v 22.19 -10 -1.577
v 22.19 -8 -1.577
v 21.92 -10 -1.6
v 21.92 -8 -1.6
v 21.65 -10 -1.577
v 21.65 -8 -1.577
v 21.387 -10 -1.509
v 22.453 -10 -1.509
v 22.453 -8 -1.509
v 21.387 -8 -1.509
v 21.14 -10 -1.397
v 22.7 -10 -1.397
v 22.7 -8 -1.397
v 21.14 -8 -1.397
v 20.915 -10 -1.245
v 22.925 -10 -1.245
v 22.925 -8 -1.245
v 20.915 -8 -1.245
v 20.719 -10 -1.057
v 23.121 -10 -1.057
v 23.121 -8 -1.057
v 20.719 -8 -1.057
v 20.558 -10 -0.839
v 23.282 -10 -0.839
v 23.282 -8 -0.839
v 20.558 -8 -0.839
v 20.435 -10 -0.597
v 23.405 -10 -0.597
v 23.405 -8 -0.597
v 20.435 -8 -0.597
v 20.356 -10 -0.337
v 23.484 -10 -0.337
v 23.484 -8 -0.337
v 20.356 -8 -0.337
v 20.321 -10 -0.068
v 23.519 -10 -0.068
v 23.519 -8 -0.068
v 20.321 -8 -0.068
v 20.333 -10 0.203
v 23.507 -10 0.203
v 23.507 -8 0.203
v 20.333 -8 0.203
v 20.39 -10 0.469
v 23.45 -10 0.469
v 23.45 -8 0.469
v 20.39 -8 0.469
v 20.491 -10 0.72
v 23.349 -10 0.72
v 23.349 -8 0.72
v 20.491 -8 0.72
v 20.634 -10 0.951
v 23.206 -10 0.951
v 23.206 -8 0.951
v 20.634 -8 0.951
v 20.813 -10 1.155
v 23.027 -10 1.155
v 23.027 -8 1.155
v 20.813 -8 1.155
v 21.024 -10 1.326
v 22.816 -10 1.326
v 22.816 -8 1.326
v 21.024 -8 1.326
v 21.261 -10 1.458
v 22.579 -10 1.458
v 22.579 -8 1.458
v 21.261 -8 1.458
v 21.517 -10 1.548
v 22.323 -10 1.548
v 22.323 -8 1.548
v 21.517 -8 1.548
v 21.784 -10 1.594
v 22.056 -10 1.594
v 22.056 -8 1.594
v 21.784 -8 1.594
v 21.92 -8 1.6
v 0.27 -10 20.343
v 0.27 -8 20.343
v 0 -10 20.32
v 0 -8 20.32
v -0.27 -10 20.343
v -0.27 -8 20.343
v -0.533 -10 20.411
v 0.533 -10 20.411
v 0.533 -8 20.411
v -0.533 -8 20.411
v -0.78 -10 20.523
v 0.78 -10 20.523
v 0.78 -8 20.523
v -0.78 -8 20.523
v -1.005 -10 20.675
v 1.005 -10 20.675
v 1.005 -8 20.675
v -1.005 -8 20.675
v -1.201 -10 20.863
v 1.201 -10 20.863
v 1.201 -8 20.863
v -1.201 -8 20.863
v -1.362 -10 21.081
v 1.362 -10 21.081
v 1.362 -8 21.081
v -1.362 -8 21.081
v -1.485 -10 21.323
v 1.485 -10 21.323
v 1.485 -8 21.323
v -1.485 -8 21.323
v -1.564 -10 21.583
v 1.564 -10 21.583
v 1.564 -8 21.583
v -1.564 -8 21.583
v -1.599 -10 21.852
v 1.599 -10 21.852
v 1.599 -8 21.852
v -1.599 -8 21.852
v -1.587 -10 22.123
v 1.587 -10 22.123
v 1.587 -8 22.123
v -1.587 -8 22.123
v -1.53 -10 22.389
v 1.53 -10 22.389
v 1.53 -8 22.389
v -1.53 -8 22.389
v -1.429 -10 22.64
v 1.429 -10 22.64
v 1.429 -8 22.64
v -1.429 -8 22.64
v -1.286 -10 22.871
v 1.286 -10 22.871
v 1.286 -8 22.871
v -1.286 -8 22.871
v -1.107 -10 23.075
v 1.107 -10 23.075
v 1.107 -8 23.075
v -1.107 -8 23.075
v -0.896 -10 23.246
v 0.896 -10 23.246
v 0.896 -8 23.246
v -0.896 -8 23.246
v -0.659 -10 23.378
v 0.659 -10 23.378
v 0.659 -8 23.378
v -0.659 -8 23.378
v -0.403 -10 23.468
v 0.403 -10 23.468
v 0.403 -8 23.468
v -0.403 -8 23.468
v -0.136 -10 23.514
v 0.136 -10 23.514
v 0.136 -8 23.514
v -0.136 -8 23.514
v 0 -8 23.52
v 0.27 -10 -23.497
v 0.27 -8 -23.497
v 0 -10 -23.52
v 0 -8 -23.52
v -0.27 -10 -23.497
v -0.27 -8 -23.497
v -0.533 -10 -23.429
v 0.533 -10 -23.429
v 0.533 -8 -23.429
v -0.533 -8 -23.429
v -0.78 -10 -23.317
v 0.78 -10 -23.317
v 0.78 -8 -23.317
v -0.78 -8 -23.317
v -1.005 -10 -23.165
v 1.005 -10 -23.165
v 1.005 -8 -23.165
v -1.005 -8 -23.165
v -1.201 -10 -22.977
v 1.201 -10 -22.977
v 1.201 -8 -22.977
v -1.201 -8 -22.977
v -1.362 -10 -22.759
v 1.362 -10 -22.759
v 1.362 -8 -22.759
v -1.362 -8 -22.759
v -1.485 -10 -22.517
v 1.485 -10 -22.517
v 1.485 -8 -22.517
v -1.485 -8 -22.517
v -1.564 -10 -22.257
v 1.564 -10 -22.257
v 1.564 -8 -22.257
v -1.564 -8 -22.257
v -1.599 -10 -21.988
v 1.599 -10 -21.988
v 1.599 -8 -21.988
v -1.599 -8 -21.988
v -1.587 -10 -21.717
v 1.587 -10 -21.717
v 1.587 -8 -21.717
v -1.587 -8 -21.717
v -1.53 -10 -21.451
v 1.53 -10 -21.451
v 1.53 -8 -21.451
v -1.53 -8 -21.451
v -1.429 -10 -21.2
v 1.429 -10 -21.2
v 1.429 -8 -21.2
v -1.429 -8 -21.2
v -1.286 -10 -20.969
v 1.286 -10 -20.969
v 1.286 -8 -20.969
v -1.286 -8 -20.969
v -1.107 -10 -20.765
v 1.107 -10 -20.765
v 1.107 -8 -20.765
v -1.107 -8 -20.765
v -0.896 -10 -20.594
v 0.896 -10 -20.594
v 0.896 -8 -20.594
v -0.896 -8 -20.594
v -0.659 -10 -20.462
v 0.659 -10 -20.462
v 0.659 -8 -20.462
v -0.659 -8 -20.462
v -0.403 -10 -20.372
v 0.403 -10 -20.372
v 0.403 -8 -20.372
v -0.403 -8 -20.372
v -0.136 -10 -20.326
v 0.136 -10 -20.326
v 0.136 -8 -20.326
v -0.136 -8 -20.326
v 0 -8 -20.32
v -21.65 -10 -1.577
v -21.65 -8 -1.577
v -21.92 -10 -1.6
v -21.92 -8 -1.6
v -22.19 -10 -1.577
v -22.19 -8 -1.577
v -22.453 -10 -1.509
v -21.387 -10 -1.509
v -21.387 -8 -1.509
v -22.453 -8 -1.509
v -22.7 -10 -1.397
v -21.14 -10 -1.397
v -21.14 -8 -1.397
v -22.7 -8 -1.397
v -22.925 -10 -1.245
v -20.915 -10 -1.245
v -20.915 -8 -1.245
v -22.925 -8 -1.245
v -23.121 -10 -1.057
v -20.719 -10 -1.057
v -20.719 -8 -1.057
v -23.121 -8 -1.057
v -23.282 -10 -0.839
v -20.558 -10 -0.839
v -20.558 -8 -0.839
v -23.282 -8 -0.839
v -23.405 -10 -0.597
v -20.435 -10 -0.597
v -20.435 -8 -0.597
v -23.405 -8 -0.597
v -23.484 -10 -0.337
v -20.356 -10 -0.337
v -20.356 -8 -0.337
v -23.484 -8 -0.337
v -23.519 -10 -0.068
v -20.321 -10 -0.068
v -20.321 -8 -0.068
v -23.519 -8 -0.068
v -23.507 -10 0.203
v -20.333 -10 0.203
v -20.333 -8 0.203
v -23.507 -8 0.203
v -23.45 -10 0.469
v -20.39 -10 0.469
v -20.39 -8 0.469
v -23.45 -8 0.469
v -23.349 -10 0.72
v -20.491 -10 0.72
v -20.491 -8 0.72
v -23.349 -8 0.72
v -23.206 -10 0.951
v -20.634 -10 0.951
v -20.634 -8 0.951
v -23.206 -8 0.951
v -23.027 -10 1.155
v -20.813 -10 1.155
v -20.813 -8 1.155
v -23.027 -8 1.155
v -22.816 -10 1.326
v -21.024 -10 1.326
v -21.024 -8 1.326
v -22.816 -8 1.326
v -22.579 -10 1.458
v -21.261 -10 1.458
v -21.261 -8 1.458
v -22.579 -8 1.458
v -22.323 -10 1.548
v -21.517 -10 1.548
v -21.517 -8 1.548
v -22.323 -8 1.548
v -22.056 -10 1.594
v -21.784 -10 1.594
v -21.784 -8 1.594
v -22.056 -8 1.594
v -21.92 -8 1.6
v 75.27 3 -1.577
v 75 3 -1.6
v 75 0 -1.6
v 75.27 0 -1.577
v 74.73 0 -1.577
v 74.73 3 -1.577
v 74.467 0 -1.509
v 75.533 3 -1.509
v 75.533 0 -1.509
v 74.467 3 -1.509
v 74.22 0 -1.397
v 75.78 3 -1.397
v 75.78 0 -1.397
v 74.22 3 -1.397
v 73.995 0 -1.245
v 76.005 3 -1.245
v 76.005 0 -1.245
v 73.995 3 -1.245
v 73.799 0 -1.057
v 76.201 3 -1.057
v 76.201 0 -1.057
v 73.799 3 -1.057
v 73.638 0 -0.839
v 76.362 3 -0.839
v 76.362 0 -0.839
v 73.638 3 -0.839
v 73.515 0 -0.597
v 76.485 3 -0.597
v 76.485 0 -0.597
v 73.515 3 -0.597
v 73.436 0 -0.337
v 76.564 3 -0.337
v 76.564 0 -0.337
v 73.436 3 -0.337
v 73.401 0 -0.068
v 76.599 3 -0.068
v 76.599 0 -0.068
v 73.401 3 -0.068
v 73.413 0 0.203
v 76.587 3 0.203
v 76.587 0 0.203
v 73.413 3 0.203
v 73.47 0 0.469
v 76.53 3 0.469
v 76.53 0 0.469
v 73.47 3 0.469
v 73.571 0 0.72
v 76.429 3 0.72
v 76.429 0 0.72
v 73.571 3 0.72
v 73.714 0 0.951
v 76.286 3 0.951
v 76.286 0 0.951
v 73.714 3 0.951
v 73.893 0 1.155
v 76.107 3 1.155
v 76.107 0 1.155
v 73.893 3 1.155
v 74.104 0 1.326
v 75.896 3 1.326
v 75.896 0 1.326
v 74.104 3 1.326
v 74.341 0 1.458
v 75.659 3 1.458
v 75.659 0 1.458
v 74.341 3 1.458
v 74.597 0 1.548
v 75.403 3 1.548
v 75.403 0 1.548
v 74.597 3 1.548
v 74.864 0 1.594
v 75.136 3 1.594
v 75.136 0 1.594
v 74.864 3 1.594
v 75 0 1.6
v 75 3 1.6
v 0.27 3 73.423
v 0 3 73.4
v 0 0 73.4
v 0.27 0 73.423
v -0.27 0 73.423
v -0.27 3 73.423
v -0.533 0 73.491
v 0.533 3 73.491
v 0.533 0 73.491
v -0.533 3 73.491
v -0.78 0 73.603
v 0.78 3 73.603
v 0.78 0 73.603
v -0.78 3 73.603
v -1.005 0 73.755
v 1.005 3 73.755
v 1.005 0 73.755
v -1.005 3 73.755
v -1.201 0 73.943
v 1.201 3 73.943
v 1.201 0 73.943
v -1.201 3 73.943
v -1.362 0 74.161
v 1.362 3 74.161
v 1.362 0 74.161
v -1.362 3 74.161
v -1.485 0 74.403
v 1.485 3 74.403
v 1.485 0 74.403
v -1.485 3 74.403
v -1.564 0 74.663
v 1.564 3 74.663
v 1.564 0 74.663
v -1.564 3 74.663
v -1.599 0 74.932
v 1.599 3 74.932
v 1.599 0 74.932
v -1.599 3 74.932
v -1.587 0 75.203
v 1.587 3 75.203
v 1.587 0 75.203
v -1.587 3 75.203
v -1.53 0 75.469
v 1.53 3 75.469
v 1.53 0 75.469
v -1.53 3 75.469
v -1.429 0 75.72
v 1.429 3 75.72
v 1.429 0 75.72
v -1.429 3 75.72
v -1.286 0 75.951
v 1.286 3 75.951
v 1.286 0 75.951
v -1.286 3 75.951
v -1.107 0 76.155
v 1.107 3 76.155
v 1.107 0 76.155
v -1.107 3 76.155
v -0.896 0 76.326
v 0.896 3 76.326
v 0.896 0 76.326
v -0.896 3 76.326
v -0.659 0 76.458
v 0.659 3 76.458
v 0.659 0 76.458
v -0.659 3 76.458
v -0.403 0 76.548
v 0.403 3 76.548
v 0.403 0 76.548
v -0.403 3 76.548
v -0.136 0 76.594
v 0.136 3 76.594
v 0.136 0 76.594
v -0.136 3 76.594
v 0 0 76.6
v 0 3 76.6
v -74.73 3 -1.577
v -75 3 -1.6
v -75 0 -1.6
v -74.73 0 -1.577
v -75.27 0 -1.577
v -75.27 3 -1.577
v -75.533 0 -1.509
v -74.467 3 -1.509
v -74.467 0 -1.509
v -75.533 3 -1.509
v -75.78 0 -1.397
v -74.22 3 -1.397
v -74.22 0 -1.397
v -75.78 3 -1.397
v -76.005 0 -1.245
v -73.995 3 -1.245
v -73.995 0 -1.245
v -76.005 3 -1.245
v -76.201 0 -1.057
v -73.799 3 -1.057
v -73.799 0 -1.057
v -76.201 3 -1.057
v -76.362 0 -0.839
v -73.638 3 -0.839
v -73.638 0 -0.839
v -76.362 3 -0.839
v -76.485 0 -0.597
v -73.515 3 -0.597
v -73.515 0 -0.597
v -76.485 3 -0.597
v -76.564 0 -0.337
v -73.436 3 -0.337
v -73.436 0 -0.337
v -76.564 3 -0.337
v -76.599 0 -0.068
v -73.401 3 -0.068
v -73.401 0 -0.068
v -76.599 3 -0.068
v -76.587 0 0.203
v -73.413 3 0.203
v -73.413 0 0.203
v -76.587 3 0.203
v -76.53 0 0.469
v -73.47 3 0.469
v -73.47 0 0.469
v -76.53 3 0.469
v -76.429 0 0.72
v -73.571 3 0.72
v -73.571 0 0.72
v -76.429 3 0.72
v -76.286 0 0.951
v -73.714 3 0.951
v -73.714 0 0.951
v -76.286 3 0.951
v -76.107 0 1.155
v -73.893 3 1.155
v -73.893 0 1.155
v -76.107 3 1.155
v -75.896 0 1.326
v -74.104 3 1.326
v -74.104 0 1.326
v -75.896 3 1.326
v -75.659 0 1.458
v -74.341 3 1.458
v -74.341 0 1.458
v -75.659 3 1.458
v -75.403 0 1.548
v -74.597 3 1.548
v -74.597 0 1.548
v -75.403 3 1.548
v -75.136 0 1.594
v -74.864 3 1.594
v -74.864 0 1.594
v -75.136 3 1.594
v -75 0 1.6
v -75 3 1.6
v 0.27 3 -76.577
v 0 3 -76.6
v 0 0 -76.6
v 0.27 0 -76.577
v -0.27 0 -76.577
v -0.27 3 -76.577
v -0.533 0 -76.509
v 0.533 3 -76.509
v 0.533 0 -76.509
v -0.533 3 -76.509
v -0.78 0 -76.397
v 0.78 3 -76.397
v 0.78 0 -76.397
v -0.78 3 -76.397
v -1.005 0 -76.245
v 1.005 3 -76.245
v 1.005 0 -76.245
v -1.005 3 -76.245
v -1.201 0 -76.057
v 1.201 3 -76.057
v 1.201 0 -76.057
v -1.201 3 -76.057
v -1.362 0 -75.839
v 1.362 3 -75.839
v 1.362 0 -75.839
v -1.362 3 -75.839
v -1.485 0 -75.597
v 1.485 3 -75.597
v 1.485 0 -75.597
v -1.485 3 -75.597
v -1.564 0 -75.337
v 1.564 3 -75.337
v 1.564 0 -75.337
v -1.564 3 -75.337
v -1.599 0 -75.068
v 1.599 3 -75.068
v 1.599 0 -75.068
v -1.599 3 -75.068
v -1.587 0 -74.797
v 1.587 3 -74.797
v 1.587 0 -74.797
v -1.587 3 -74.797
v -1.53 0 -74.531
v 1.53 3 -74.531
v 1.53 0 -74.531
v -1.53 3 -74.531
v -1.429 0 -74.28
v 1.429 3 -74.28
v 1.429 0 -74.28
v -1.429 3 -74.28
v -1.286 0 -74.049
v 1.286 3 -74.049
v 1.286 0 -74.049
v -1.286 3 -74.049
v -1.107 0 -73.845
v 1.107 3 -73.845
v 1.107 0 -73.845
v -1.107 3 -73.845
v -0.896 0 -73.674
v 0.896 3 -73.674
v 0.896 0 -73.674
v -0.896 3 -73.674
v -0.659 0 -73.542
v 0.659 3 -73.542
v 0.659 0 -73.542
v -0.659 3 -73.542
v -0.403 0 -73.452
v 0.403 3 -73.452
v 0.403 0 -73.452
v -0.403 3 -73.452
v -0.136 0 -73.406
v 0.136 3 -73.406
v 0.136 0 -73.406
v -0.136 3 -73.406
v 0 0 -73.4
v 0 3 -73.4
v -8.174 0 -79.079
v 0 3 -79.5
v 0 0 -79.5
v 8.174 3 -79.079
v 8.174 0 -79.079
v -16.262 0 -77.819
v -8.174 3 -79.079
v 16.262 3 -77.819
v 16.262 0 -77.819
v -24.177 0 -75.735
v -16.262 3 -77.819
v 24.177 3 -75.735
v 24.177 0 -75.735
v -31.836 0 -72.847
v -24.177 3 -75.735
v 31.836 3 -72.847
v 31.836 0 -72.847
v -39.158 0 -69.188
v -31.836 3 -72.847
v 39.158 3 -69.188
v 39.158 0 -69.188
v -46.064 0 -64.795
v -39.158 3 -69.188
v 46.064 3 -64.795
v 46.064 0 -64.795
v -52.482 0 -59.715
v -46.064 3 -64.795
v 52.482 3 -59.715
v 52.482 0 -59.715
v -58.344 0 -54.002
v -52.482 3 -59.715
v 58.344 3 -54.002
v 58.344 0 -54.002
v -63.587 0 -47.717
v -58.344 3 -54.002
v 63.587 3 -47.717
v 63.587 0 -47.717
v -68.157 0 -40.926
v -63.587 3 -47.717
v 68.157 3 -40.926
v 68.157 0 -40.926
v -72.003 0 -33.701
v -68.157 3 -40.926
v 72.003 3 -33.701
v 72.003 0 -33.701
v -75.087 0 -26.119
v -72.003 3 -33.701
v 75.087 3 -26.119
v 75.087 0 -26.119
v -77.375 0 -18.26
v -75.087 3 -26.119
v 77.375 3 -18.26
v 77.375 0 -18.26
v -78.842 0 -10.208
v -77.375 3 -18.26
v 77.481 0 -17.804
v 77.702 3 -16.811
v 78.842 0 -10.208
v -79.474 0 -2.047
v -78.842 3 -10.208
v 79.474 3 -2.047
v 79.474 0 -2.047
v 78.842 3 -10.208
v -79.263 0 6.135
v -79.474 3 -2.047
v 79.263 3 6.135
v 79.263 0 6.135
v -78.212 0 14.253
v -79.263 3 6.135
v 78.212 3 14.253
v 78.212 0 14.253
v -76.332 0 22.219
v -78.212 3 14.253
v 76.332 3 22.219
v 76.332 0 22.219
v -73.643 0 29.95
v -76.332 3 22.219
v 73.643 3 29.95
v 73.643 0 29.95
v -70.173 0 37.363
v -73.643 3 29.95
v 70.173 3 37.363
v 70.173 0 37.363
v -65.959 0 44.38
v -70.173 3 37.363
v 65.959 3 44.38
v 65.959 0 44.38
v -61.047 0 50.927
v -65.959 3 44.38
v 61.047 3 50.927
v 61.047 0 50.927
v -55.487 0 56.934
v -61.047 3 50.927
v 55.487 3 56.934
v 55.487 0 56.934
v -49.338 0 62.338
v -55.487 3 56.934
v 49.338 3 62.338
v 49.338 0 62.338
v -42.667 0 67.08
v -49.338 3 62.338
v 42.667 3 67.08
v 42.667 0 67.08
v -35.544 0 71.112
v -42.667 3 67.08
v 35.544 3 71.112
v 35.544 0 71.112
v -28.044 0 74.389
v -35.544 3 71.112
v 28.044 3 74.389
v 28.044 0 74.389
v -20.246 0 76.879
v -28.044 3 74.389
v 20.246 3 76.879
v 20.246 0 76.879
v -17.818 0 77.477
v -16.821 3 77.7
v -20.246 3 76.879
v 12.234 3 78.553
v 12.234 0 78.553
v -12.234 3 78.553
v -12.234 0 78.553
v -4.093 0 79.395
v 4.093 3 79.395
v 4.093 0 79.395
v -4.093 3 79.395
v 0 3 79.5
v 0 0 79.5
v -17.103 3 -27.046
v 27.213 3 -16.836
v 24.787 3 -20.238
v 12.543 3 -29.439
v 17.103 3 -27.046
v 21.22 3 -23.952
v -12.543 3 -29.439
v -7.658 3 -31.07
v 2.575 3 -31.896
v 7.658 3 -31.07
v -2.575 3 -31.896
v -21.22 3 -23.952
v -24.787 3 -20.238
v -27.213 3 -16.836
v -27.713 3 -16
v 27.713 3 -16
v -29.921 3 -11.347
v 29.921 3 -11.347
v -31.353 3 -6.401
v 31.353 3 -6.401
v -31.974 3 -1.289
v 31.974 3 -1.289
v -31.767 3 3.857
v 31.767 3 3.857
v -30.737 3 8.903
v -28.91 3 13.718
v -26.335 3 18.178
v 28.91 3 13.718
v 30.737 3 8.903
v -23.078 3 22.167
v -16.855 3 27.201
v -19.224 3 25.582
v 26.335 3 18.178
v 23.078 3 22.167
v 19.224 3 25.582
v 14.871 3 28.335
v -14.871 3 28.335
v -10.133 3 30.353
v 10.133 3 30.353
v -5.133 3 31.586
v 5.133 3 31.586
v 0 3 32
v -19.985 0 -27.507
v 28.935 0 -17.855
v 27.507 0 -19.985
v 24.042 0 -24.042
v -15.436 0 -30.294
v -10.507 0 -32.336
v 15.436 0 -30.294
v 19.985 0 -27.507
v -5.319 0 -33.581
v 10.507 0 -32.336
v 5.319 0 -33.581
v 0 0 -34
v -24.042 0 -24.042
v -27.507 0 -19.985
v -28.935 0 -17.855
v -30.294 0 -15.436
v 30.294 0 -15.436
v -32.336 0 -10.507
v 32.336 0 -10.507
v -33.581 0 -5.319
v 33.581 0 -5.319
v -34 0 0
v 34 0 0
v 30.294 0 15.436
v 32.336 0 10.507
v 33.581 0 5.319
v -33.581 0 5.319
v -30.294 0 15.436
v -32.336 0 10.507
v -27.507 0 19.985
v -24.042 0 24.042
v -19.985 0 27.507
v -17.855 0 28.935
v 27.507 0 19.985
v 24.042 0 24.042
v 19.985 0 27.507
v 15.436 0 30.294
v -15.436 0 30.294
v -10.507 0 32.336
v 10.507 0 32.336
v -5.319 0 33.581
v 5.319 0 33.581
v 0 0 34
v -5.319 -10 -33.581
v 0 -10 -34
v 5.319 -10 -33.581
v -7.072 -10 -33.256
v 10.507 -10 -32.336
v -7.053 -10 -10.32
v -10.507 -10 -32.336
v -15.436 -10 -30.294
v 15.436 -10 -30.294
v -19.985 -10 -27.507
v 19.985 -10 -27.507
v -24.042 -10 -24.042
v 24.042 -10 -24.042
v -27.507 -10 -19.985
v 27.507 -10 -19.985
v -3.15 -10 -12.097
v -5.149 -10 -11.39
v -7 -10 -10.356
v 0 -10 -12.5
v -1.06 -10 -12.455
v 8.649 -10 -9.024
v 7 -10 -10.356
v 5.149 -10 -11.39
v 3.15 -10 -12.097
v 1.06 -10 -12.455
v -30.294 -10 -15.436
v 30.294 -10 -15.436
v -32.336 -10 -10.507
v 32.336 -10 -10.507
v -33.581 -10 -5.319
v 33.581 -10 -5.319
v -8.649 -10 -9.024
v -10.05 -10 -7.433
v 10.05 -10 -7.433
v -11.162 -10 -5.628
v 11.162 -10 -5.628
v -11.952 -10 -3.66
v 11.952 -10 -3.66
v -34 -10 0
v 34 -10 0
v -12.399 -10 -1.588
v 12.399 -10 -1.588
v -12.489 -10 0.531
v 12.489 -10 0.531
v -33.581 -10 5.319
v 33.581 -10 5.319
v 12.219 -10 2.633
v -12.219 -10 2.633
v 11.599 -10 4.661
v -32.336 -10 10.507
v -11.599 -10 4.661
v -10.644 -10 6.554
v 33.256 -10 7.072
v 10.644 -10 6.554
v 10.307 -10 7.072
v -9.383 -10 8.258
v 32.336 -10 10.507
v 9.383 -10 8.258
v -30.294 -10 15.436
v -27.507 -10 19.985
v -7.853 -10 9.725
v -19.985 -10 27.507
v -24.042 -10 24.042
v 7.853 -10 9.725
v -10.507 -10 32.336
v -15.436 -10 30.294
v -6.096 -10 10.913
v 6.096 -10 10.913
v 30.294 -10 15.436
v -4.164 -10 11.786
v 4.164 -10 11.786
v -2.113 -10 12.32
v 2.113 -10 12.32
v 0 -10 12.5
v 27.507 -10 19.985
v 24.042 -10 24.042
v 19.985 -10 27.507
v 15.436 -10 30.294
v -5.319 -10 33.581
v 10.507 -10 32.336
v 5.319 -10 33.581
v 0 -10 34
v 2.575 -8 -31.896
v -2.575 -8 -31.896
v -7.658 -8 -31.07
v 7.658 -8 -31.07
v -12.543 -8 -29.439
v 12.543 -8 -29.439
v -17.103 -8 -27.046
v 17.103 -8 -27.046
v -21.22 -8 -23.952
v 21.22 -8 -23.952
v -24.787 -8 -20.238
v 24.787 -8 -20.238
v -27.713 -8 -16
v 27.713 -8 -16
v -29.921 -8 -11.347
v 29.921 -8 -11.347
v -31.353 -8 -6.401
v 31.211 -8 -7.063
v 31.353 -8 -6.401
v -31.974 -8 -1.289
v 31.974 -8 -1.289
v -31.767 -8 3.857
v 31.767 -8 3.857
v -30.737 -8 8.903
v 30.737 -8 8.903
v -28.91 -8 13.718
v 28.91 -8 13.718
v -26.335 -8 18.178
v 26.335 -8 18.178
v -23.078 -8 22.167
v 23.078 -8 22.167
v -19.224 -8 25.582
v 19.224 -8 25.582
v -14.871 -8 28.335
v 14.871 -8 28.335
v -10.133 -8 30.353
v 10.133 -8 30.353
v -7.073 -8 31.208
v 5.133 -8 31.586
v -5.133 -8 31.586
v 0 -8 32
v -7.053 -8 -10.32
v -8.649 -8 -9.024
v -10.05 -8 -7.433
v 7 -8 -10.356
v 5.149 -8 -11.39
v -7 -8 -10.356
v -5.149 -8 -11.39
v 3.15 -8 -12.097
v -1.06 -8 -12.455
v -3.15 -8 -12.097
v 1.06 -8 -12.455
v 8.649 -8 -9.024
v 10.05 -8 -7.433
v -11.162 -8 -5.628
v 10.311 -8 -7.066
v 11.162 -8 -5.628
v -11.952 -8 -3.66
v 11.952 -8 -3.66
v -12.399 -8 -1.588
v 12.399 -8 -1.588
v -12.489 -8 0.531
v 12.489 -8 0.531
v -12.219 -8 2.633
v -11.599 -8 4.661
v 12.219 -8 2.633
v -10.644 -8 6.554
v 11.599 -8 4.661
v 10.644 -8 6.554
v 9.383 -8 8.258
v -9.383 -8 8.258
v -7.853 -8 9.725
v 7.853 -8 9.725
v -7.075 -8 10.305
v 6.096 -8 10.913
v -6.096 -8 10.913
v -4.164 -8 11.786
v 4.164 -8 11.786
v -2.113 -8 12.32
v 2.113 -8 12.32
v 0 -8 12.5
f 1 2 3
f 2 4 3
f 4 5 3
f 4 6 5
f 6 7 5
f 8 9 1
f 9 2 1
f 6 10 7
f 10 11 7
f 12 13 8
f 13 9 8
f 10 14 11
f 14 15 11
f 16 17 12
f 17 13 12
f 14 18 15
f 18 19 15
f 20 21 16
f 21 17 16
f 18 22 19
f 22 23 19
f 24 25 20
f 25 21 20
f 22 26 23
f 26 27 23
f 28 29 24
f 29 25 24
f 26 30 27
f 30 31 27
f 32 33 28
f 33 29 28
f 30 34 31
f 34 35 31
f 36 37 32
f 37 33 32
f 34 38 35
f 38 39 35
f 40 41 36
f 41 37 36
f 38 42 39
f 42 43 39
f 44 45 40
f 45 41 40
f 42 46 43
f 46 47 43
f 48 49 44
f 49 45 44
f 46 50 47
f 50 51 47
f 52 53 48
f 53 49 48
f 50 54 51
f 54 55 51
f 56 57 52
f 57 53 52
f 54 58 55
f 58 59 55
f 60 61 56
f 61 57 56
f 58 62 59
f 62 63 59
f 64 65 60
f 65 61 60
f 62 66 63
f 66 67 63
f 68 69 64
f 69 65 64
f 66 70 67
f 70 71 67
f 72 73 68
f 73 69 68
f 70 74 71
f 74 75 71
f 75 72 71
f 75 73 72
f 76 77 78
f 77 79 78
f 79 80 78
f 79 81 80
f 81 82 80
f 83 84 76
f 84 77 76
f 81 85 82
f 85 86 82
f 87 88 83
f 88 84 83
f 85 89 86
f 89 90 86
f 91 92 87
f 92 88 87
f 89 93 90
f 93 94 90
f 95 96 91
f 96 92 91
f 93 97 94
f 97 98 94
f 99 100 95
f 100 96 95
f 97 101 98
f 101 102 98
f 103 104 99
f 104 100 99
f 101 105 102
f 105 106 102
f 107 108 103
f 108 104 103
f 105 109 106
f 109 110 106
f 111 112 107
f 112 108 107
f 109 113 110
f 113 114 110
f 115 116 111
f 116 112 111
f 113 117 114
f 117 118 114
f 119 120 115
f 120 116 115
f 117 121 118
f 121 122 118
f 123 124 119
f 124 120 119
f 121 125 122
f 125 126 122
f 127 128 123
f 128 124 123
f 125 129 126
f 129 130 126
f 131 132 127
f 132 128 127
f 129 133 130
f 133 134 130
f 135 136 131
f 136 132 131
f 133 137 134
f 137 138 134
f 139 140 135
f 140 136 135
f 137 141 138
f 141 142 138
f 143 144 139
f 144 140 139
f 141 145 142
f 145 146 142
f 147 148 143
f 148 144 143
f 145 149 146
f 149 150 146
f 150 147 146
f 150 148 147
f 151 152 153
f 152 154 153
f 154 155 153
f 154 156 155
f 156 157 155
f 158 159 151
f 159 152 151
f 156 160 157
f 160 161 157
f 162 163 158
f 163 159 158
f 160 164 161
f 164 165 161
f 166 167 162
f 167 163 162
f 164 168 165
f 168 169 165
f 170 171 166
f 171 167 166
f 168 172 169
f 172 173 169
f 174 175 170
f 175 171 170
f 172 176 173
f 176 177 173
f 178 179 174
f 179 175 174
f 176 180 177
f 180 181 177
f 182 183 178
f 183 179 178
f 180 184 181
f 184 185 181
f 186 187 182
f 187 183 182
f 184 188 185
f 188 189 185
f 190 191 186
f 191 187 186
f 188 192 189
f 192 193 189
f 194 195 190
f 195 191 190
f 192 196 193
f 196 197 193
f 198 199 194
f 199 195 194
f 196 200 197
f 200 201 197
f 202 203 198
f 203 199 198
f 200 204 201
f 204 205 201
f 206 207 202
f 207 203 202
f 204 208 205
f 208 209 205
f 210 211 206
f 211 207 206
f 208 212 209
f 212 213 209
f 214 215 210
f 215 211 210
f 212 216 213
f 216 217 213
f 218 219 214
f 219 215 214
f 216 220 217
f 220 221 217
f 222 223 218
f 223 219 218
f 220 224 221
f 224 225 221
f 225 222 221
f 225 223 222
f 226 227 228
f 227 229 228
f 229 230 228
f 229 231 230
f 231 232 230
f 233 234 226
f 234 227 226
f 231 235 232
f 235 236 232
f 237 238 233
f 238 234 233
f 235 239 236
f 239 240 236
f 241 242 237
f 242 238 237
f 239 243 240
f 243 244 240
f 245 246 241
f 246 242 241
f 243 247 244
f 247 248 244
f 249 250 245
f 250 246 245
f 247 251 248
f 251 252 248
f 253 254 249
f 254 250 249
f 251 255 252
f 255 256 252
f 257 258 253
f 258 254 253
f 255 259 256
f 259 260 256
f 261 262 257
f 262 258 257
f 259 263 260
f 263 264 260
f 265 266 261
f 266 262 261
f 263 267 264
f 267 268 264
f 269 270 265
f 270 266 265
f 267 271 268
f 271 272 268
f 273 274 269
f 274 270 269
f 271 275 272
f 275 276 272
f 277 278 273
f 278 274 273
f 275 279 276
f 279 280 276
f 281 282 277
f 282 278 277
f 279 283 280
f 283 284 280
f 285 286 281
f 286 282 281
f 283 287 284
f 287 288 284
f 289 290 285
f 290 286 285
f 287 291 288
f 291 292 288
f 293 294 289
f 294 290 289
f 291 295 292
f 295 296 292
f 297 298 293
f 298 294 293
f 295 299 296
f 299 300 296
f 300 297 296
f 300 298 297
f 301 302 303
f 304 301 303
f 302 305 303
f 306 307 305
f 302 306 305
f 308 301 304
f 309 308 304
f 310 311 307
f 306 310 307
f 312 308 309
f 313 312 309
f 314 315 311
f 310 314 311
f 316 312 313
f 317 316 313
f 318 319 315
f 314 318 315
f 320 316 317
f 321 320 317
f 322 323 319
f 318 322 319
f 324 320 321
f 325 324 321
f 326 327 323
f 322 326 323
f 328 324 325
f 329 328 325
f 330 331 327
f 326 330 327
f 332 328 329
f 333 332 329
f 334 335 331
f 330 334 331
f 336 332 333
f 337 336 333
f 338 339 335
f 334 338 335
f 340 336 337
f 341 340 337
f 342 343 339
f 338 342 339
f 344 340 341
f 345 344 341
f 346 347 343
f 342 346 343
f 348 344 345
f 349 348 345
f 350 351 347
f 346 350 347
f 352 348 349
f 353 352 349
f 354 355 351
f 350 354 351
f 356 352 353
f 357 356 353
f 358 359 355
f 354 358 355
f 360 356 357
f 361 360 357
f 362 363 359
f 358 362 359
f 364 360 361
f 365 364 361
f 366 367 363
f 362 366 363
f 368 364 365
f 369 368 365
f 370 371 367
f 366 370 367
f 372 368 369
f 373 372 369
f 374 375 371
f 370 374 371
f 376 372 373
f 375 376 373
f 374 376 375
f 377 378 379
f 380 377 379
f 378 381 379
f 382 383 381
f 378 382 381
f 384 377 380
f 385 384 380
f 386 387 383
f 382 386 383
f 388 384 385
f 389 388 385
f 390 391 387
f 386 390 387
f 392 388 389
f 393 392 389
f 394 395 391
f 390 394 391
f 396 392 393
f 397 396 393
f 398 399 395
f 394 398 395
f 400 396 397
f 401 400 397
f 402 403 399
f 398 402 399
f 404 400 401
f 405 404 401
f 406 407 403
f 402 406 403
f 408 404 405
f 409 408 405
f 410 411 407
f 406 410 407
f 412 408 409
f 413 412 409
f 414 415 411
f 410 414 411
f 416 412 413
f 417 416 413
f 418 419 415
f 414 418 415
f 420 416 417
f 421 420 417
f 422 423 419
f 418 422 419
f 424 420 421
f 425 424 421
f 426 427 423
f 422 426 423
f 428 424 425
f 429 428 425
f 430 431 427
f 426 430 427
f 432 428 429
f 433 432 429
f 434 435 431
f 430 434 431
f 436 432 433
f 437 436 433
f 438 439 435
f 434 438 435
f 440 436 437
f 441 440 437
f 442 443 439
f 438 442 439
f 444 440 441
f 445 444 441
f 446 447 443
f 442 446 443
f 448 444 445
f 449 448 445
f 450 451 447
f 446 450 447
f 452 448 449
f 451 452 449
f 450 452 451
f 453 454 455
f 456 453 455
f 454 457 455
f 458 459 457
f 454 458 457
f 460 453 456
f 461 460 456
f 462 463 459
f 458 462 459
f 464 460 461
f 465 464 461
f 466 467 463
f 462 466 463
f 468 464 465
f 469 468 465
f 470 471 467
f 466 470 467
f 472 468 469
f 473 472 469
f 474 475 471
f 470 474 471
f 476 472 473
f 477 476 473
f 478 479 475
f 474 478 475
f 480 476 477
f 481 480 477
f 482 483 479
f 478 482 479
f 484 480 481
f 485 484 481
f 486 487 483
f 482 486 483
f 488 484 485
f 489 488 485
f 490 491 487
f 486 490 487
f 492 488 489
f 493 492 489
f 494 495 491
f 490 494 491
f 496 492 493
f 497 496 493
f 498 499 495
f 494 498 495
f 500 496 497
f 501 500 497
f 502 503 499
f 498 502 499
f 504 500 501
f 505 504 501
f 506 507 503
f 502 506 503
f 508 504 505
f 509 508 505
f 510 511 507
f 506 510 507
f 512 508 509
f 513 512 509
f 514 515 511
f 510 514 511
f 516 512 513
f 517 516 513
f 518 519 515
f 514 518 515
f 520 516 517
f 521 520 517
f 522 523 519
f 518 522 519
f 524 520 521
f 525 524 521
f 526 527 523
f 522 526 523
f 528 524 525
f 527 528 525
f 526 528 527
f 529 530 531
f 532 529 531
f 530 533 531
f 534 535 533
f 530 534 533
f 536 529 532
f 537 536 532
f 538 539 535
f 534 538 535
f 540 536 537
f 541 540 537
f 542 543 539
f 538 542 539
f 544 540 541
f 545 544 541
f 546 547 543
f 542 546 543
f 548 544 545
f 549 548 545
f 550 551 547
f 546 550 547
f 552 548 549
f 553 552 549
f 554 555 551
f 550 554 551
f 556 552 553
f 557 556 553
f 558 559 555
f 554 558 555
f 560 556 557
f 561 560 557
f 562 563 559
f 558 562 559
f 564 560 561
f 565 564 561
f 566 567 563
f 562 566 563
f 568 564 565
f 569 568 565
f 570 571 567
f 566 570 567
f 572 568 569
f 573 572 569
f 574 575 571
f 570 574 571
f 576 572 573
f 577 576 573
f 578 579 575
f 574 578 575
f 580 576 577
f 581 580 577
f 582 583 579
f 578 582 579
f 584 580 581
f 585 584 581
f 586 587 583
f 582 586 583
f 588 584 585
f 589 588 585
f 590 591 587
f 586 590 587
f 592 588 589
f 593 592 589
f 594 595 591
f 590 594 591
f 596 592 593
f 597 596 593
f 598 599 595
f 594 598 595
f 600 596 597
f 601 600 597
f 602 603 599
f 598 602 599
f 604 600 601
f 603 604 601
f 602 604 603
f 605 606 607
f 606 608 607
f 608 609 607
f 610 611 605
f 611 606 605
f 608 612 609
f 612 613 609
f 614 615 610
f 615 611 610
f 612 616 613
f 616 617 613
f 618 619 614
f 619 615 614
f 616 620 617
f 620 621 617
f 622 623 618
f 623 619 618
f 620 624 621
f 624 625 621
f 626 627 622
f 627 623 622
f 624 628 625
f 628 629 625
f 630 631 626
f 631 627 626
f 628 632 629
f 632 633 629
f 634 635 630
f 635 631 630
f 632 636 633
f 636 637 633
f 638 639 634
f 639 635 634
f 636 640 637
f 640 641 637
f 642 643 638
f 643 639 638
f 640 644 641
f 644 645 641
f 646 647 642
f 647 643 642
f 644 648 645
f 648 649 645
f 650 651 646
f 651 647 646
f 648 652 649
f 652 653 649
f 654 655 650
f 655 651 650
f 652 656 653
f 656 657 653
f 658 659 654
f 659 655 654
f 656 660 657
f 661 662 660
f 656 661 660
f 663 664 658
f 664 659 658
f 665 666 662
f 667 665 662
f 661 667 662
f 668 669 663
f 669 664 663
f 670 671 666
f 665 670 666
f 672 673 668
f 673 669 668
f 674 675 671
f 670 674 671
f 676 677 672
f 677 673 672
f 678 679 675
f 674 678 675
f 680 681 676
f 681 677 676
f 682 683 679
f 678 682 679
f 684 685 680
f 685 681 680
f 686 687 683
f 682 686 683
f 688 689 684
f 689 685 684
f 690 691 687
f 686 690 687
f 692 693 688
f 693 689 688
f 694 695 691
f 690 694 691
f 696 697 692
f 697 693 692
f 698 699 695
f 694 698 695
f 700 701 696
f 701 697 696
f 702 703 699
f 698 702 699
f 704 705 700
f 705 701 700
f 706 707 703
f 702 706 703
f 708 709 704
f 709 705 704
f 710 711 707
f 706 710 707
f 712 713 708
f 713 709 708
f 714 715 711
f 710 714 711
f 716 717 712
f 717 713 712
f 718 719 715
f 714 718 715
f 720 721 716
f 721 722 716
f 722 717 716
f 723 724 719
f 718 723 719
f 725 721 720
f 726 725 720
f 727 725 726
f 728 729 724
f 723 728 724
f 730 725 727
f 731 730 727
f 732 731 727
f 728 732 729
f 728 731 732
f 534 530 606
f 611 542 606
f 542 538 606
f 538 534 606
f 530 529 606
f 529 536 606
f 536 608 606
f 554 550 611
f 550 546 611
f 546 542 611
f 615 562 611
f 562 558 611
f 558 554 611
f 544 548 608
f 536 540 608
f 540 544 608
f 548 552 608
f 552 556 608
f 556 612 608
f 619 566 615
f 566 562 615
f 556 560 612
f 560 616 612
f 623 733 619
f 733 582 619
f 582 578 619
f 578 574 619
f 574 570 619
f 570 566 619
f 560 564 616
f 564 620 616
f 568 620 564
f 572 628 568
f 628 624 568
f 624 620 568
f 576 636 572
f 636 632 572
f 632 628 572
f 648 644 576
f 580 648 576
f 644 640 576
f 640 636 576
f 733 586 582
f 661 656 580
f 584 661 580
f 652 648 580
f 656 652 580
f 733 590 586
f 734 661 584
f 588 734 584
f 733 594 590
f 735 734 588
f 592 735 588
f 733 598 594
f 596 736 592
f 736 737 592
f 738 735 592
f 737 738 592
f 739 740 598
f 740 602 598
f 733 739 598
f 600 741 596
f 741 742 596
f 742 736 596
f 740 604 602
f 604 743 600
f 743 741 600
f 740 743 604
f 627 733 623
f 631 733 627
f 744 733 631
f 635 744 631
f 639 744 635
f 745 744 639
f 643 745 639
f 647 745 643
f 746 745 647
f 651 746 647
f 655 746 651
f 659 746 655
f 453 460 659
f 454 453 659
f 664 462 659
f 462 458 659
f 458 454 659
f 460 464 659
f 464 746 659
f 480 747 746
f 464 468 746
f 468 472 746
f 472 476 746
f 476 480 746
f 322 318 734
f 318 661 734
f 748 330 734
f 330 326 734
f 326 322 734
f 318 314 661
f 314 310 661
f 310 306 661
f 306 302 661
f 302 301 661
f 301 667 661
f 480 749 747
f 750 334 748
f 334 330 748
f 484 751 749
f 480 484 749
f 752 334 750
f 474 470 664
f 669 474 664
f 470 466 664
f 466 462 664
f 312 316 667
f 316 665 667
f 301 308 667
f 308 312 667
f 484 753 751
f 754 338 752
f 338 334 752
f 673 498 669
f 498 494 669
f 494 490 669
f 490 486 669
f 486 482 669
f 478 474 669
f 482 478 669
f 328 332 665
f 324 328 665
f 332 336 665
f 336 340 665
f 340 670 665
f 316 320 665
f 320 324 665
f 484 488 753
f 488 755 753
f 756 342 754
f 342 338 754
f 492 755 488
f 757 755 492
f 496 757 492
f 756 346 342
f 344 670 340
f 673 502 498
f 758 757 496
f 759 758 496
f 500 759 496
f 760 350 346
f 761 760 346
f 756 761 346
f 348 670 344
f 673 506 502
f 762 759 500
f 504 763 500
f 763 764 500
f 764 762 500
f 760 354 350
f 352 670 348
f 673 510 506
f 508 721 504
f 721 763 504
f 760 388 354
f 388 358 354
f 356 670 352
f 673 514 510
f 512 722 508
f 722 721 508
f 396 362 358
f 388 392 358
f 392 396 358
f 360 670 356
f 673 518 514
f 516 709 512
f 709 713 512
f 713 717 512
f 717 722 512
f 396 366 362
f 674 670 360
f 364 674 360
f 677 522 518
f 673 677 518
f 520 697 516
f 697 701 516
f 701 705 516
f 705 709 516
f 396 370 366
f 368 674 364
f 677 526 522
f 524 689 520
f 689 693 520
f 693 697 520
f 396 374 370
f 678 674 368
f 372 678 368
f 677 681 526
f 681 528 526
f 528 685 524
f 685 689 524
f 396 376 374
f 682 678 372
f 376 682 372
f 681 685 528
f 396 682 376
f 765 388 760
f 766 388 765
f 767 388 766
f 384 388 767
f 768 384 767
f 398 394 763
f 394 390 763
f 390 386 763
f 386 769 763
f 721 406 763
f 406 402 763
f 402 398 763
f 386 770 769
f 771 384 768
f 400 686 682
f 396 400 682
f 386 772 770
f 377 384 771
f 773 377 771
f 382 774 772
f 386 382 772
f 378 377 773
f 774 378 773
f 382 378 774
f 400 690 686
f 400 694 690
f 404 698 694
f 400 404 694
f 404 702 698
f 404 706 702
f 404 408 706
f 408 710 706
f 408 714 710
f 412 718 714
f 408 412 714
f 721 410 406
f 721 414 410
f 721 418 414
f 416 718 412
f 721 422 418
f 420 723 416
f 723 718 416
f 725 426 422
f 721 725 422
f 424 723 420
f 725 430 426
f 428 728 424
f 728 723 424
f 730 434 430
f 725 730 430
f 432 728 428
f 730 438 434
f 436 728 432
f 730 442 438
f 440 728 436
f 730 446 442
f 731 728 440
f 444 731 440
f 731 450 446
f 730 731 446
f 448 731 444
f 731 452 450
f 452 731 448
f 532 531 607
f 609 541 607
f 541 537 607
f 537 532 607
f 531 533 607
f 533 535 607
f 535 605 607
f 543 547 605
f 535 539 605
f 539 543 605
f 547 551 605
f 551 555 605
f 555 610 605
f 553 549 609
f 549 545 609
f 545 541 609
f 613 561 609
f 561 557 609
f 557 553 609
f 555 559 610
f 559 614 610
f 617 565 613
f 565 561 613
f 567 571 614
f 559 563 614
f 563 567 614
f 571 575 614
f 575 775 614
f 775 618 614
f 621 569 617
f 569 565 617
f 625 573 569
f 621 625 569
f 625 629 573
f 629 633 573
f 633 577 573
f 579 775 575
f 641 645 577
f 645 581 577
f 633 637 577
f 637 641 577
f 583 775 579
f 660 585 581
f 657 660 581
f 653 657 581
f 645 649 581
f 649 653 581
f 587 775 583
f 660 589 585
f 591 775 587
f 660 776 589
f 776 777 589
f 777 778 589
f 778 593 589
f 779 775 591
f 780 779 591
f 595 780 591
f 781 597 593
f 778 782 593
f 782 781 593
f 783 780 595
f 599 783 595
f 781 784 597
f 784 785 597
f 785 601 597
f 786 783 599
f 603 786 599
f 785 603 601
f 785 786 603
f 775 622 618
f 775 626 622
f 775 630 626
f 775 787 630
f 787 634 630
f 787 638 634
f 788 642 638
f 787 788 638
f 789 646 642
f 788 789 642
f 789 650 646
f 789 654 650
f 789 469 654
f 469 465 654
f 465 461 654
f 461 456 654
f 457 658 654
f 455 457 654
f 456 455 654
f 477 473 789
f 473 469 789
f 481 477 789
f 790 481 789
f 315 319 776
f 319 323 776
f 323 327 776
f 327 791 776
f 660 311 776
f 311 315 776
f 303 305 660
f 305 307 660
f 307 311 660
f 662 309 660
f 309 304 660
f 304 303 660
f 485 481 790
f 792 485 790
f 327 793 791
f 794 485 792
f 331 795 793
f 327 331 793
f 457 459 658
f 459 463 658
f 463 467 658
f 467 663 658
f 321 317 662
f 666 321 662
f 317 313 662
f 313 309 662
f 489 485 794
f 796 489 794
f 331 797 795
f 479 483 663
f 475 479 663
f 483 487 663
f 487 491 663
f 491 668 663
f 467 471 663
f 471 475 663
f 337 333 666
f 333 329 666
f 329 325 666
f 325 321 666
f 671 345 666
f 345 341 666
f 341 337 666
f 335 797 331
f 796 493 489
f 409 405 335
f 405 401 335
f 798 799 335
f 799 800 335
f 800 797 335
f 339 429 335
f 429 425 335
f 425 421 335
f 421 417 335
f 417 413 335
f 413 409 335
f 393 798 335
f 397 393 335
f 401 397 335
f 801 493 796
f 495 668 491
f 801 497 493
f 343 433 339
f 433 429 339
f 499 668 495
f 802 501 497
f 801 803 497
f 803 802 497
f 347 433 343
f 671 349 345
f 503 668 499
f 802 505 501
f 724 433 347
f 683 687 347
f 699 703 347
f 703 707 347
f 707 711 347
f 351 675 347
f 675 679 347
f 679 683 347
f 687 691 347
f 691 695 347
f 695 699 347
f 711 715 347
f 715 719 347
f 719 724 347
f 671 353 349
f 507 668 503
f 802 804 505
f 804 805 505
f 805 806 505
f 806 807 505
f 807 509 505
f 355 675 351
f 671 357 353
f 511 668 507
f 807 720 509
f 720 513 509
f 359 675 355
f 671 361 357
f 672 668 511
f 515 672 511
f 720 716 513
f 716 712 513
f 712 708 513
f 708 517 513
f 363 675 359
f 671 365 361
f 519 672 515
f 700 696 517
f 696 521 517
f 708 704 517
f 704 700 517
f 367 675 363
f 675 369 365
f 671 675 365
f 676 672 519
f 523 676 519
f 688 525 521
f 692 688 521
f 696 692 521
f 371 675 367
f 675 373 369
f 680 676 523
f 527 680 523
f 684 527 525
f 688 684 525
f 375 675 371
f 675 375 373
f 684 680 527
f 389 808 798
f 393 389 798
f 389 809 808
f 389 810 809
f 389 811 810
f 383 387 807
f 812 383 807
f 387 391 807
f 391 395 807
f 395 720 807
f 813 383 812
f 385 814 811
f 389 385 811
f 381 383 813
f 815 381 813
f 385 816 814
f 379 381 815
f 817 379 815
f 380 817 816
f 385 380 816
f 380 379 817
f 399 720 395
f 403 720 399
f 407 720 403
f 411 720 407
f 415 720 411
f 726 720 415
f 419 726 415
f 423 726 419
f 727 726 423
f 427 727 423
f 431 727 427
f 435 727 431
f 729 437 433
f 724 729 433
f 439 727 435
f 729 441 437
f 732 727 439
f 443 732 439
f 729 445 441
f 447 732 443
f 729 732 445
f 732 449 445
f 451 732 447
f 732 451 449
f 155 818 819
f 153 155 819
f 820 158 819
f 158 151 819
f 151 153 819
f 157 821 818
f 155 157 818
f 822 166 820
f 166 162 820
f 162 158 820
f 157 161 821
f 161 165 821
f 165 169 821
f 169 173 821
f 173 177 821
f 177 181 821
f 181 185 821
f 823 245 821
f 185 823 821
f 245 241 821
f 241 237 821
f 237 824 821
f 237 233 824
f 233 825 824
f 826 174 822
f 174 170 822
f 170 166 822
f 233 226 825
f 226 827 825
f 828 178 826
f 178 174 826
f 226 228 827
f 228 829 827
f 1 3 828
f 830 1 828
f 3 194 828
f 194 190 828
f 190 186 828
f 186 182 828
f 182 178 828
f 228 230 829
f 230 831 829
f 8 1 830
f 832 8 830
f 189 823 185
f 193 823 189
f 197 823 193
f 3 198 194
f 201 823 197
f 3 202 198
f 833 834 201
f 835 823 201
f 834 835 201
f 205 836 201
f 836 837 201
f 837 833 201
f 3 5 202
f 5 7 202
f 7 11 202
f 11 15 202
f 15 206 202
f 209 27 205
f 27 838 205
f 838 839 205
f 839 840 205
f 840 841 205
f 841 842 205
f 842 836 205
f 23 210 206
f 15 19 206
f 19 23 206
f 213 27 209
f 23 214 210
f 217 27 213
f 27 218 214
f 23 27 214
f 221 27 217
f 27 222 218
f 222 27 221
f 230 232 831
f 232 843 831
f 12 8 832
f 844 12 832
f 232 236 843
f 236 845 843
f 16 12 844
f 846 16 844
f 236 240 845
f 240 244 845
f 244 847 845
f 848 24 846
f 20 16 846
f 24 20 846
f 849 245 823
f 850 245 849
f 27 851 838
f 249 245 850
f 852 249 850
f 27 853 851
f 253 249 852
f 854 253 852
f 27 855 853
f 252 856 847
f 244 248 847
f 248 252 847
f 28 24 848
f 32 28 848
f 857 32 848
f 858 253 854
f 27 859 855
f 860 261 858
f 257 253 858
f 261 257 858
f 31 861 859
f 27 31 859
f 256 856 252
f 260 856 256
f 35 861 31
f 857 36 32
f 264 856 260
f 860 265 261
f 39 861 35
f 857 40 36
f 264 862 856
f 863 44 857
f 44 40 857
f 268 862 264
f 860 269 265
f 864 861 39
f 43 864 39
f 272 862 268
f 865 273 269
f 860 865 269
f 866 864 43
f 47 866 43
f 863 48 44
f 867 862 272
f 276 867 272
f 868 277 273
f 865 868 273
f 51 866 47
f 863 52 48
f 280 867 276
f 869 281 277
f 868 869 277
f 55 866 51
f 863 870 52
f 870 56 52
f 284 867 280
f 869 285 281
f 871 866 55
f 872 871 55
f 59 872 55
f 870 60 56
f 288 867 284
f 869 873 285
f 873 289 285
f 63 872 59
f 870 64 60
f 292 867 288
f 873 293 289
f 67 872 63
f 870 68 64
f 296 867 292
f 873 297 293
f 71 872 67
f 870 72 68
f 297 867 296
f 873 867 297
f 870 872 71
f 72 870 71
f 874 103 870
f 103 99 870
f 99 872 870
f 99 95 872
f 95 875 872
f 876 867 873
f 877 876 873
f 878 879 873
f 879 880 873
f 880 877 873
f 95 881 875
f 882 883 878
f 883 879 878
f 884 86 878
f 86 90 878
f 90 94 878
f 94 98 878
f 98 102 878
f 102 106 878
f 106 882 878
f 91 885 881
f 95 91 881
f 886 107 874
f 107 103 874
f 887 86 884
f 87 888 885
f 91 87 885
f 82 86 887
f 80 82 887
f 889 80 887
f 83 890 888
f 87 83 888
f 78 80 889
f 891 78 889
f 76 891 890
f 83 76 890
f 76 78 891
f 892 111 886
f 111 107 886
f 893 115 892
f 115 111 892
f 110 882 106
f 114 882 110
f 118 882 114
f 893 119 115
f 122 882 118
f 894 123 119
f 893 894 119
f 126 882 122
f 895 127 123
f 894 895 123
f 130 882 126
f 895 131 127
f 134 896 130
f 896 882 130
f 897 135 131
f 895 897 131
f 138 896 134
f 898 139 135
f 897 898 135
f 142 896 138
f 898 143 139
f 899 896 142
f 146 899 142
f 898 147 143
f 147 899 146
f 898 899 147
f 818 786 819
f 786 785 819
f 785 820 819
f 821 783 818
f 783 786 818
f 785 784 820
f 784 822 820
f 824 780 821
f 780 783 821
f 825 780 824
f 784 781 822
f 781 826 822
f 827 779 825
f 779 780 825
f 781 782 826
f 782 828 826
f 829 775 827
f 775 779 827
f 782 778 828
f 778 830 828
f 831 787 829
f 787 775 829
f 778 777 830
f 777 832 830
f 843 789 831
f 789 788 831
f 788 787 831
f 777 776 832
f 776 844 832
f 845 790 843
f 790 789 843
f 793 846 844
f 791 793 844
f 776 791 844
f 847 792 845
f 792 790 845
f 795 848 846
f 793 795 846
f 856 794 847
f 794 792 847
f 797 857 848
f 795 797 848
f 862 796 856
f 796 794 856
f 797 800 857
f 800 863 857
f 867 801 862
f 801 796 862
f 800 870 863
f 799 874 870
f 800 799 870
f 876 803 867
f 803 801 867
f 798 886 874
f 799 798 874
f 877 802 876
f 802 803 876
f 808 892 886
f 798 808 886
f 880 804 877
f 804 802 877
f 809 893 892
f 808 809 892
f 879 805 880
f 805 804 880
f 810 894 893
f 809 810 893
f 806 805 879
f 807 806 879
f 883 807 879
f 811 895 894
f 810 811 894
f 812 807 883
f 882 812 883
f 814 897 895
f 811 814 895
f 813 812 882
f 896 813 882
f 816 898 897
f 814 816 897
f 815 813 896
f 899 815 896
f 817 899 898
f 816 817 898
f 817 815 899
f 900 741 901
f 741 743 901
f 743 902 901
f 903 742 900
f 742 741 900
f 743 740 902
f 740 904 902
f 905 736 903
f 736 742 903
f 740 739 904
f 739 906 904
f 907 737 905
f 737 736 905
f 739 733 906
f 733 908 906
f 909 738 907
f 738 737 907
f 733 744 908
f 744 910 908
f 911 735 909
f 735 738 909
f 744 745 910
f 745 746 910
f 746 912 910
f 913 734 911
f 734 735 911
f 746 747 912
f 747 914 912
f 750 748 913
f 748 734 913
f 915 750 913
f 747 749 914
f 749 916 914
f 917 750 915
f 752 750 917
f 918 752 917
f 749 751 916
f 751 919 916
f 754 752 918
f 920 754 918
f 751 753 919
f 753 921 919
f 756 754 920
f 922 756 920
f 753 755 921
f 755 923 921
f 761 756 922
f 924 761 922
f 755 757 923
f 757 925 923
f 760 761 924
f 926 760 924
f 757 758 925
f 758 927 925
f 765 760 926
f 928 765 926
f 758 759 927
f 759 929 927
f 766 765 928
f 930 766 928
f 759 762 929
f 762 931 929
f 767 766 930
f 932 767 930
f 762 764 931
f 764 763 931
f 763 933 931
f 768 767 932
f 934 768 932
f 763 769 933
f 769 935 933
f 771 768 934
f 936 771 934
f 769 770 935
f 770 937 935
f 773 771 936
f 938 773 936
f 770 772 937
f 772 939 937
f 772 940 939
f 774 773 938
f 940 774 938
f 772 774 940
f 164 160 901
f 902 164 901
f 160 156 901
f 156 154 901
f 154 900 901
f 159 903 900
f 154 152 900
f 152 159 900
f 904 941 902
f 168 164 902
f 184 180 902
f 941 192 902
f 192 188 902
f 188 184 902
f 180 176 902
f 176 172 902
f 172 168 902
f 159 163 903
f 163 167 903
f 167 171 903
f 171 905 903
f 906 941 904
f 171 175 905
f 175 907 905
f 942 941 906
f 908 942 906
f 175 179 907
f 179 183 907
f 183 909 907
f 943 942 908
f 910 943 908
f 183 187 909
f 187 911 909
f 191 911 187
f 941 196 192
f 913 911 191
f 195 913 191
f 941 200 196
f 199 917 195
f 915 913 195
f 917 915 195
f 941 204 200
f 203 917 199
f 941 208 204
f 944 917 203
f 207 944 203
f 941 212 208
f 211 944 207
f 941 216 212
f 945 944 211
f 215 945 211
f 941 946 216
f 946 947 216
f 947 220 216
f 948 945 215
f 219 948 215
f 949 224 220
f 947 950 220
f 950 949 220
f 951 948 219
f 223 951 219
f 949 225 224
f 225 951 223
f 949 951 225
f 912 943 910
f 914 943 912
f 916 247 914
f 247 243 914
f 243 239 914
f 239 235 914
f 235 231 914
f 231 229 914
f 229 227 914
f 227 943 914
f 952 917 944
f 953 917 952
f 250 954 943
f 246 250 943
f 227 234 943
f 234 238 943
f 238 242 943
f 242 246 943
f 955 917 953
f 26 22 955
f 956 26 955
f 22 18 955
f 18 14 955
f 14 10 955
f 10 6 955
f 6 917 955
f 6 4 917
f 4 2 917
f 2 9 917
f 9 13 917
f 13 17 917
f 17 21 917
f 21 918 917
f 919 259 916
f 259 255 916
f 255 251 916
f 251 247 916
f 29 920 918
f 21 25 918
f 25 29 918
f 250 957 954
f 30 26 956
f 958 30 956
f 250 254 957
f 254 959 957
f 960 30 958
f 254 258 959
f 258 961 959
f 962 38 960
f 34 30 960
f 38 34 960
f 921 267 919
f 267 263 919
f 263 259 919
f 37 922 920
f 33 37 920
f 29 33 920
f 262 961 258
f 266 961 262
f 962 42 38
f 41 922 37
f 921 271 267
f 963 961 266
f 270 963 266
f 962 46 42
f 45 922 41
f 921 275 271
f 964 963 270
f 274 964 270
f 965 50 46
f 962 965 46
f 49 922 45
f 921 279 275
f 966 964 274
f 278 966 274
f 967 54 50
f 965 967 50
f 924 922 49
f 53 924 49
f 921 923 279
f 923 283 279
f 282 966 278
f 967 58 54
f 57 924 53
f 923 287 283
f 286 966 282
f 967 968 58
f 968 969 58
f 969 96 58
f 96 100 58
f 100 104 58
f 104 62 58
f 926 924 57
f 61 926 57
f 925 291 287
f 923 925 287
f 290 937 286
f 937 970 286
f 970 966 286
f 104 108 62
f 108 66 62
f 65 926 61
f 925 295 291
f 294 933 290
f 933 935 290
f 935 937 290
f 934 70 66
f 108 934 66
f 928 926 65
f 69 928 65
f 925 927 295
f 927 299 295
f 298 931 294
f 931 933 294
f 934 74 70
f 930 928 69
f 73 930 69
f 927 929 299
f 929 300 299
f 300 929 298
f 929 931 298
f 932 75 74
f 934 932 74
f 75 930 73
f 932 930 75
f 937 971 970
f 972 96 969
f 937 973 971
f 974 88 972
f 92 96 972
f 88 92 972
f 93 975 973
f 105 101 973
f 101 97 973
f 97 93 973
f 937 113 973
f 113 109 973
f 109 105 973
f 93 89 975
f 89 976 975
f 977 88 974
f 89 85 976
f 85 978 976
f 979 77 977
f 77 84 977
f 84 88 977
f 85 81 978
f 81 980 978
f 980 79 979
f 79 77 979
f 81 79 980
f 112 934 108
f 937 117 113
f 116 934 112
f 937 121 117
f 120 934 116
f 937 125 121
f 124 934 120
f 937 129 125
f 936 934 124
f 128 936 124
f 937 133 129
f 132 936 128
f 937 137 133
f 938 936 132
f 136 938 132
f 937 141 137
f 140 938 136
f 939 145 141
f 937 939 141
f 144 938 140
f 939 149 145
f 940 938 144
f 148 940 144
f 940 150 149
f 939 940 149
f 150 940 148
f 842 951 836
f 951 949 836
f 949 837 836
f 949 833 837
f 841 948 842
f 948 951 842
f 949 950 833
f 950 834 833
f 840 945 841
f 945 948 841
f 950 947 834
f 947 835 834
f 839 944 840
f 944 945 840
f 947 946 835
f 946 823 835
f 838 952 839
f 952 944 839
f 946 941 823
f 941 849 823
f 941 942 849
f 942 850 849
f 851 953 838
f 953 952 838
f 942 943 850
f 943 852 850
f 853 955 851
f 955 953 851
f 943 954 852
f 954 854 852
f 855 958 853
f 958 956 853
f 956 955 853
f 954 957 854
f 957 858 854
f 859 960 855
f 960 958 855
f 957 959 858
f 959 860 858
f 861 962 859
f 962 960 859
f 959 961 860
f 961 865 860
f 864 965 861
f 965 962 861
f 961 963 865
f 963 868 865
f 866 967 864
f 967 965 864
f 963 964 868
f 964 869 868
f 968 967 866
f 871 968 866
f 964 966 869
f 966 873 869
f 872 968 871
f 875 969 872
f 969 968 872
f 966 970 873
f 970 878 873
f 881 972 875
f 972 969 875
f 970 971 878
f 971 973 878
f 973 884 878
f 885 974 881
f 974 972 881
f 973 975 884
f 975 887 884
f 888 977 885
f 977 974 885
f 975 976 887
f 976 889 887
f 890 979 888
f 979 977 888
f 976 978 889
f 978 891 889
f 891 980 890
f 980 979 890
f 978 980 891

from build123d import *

# Parameters (mm, degrees)
SKETCH_1_R          = 79.5
SKETCH_1_R_2        = 1.6
EXTRUDE_1_DEPTH     = 3
SKETCH_5_R          = 34
EXTRUDE_2_DEPTH     = 10
CUT_EXTRUDE_START   = -22
SKETCH_7_R          = 1.6
CUT_EXTRUDE_1_DEPTH = 22
SKETCH_8_R          = 32
CUT_EXTRUDE_2_DEPTH = 11
SKETCH_10_R         = 12.5
CUT_EXTRUDE_3_DEPTH = 12


with BuildPart() as part:
    # 草图1 → 凸台-拉伸1 (new body)
    with BuildSketch(Plane(origin=(0, 0, 0), x_dir=(1, 0, 0), z_dir=(0, 1, 0))):
        with Locations(Location((0, 0, 0), (0, 0, 270))):
            Circle(SKETCH_1_R)
        with Locations(Location((0, 75, 0), (0, 0, 270))):
            Circle(SKETCH_1_R_2, mode=Mode.SUBTRACT)
        with Locations(Location((75, 0, 0), (0, 0, 270))):
            Circle(SKETCH_1_R_2, mode=Mode.SUBTRACT)
        with Locations(Location((0, -75, 0), (0, 0, 270))):
            Circle(SKETCH_1_R_2, mode=Mode.SUBTRACT)
        with Locations(Location((-75, 0, 0), (0, 0, 270))):
            Circle(SKETCH_1_R_2, mode=Mode.SUBTRACT)
        with Locations(Location((0, 21.92, 0), (0, 0, 270))):
            Circle(SKETCH_1_R_2, mode=Mode.SUBTRACT)
        with Locations(Location((21.92, 0, 0), (0, 0, 270))):
            Circle(SKETCH_1_R_2, mode=Mode.SUBTRACT)
        with Locations(Location((0, -21.92, 0), (0, 0, 270))):
            Circle(SKETCH_1_R_2, mode=Mode.SUBTRACT)
        with Locations(Location((-21.92, 0, 0), (0, 0, 270))):
            Circle(SKETCH_1_R_2, mode=Mode.SUBTRACT)
    extrude(amount=EXTRUDE_1_DEPTH)

    # 草图5 → 凸台-拉伸2 (add)
    with BuildSketch(Plane.XZ):
        with Locations(Location((0, 0, 0), (0, 0, 90))):
            Circle(SKETCH_5_R)
    extrude(amount=EXTRUDE_2_DEPTH)

    # 草图7 → 切除-拉伸1 (cut)
    with BuildSketch(Plane(origin=(0, 3, 0), x_dir=(1, 0, 0), z_dir=(0, 1, 0)).offset(CUT_EXTRUDE_START)):
        with Locations(Location((0, 21.92, 0), (0, 0, 90))):
            Circle(SKETCH_7_R)
        with Locations(Location((21.92, 0, 0), (0, 0, 90))):
            Circle(SKETCH_7_R)
        with Locations(Location((0, -21.92, 0), (0, 0, 90))):
            Circle(SKETCH_7_R)
        with Locations(Location((-21.92, 0, 0), (0, 0, 90))):
            Circle(SKETCH_7_R)
    extrude(amount=CUT_EXTRUDE_1_DEPTH, mode=Mode.SUBTRACT)

    # 草图8 → 切除-拉伸2 (cut)
    with BuildSketch(Plane(origin=(0, 3, 0), x_dir=(1, 0, 0), z_dir=(0, 1, 0))):
        with Locations(Location((0, 0, 0), (0, 0, 270))):
            Circle(SKETCH_8_R)
    extrude(amount=-CUT_EXTRUDE_2_DEPTH, mode=Mode.SUBTRACT)

    # 草图10 → 切除-拉伸3 (cut)
    with BuildSketch(Plane(origin=(0, -8, 0), x_dir=(1, 0, 0), z_dir=(0, 1, 0))):
        with Locations(Location((0, 0, 0), (0, 0, 270))):
            Circle(SKETCH_10_R)
    extrude(amount=-CUT_EXTRUDE_3_DEPTH, mode=Mode.SUBTRACT)


solid = part.part
